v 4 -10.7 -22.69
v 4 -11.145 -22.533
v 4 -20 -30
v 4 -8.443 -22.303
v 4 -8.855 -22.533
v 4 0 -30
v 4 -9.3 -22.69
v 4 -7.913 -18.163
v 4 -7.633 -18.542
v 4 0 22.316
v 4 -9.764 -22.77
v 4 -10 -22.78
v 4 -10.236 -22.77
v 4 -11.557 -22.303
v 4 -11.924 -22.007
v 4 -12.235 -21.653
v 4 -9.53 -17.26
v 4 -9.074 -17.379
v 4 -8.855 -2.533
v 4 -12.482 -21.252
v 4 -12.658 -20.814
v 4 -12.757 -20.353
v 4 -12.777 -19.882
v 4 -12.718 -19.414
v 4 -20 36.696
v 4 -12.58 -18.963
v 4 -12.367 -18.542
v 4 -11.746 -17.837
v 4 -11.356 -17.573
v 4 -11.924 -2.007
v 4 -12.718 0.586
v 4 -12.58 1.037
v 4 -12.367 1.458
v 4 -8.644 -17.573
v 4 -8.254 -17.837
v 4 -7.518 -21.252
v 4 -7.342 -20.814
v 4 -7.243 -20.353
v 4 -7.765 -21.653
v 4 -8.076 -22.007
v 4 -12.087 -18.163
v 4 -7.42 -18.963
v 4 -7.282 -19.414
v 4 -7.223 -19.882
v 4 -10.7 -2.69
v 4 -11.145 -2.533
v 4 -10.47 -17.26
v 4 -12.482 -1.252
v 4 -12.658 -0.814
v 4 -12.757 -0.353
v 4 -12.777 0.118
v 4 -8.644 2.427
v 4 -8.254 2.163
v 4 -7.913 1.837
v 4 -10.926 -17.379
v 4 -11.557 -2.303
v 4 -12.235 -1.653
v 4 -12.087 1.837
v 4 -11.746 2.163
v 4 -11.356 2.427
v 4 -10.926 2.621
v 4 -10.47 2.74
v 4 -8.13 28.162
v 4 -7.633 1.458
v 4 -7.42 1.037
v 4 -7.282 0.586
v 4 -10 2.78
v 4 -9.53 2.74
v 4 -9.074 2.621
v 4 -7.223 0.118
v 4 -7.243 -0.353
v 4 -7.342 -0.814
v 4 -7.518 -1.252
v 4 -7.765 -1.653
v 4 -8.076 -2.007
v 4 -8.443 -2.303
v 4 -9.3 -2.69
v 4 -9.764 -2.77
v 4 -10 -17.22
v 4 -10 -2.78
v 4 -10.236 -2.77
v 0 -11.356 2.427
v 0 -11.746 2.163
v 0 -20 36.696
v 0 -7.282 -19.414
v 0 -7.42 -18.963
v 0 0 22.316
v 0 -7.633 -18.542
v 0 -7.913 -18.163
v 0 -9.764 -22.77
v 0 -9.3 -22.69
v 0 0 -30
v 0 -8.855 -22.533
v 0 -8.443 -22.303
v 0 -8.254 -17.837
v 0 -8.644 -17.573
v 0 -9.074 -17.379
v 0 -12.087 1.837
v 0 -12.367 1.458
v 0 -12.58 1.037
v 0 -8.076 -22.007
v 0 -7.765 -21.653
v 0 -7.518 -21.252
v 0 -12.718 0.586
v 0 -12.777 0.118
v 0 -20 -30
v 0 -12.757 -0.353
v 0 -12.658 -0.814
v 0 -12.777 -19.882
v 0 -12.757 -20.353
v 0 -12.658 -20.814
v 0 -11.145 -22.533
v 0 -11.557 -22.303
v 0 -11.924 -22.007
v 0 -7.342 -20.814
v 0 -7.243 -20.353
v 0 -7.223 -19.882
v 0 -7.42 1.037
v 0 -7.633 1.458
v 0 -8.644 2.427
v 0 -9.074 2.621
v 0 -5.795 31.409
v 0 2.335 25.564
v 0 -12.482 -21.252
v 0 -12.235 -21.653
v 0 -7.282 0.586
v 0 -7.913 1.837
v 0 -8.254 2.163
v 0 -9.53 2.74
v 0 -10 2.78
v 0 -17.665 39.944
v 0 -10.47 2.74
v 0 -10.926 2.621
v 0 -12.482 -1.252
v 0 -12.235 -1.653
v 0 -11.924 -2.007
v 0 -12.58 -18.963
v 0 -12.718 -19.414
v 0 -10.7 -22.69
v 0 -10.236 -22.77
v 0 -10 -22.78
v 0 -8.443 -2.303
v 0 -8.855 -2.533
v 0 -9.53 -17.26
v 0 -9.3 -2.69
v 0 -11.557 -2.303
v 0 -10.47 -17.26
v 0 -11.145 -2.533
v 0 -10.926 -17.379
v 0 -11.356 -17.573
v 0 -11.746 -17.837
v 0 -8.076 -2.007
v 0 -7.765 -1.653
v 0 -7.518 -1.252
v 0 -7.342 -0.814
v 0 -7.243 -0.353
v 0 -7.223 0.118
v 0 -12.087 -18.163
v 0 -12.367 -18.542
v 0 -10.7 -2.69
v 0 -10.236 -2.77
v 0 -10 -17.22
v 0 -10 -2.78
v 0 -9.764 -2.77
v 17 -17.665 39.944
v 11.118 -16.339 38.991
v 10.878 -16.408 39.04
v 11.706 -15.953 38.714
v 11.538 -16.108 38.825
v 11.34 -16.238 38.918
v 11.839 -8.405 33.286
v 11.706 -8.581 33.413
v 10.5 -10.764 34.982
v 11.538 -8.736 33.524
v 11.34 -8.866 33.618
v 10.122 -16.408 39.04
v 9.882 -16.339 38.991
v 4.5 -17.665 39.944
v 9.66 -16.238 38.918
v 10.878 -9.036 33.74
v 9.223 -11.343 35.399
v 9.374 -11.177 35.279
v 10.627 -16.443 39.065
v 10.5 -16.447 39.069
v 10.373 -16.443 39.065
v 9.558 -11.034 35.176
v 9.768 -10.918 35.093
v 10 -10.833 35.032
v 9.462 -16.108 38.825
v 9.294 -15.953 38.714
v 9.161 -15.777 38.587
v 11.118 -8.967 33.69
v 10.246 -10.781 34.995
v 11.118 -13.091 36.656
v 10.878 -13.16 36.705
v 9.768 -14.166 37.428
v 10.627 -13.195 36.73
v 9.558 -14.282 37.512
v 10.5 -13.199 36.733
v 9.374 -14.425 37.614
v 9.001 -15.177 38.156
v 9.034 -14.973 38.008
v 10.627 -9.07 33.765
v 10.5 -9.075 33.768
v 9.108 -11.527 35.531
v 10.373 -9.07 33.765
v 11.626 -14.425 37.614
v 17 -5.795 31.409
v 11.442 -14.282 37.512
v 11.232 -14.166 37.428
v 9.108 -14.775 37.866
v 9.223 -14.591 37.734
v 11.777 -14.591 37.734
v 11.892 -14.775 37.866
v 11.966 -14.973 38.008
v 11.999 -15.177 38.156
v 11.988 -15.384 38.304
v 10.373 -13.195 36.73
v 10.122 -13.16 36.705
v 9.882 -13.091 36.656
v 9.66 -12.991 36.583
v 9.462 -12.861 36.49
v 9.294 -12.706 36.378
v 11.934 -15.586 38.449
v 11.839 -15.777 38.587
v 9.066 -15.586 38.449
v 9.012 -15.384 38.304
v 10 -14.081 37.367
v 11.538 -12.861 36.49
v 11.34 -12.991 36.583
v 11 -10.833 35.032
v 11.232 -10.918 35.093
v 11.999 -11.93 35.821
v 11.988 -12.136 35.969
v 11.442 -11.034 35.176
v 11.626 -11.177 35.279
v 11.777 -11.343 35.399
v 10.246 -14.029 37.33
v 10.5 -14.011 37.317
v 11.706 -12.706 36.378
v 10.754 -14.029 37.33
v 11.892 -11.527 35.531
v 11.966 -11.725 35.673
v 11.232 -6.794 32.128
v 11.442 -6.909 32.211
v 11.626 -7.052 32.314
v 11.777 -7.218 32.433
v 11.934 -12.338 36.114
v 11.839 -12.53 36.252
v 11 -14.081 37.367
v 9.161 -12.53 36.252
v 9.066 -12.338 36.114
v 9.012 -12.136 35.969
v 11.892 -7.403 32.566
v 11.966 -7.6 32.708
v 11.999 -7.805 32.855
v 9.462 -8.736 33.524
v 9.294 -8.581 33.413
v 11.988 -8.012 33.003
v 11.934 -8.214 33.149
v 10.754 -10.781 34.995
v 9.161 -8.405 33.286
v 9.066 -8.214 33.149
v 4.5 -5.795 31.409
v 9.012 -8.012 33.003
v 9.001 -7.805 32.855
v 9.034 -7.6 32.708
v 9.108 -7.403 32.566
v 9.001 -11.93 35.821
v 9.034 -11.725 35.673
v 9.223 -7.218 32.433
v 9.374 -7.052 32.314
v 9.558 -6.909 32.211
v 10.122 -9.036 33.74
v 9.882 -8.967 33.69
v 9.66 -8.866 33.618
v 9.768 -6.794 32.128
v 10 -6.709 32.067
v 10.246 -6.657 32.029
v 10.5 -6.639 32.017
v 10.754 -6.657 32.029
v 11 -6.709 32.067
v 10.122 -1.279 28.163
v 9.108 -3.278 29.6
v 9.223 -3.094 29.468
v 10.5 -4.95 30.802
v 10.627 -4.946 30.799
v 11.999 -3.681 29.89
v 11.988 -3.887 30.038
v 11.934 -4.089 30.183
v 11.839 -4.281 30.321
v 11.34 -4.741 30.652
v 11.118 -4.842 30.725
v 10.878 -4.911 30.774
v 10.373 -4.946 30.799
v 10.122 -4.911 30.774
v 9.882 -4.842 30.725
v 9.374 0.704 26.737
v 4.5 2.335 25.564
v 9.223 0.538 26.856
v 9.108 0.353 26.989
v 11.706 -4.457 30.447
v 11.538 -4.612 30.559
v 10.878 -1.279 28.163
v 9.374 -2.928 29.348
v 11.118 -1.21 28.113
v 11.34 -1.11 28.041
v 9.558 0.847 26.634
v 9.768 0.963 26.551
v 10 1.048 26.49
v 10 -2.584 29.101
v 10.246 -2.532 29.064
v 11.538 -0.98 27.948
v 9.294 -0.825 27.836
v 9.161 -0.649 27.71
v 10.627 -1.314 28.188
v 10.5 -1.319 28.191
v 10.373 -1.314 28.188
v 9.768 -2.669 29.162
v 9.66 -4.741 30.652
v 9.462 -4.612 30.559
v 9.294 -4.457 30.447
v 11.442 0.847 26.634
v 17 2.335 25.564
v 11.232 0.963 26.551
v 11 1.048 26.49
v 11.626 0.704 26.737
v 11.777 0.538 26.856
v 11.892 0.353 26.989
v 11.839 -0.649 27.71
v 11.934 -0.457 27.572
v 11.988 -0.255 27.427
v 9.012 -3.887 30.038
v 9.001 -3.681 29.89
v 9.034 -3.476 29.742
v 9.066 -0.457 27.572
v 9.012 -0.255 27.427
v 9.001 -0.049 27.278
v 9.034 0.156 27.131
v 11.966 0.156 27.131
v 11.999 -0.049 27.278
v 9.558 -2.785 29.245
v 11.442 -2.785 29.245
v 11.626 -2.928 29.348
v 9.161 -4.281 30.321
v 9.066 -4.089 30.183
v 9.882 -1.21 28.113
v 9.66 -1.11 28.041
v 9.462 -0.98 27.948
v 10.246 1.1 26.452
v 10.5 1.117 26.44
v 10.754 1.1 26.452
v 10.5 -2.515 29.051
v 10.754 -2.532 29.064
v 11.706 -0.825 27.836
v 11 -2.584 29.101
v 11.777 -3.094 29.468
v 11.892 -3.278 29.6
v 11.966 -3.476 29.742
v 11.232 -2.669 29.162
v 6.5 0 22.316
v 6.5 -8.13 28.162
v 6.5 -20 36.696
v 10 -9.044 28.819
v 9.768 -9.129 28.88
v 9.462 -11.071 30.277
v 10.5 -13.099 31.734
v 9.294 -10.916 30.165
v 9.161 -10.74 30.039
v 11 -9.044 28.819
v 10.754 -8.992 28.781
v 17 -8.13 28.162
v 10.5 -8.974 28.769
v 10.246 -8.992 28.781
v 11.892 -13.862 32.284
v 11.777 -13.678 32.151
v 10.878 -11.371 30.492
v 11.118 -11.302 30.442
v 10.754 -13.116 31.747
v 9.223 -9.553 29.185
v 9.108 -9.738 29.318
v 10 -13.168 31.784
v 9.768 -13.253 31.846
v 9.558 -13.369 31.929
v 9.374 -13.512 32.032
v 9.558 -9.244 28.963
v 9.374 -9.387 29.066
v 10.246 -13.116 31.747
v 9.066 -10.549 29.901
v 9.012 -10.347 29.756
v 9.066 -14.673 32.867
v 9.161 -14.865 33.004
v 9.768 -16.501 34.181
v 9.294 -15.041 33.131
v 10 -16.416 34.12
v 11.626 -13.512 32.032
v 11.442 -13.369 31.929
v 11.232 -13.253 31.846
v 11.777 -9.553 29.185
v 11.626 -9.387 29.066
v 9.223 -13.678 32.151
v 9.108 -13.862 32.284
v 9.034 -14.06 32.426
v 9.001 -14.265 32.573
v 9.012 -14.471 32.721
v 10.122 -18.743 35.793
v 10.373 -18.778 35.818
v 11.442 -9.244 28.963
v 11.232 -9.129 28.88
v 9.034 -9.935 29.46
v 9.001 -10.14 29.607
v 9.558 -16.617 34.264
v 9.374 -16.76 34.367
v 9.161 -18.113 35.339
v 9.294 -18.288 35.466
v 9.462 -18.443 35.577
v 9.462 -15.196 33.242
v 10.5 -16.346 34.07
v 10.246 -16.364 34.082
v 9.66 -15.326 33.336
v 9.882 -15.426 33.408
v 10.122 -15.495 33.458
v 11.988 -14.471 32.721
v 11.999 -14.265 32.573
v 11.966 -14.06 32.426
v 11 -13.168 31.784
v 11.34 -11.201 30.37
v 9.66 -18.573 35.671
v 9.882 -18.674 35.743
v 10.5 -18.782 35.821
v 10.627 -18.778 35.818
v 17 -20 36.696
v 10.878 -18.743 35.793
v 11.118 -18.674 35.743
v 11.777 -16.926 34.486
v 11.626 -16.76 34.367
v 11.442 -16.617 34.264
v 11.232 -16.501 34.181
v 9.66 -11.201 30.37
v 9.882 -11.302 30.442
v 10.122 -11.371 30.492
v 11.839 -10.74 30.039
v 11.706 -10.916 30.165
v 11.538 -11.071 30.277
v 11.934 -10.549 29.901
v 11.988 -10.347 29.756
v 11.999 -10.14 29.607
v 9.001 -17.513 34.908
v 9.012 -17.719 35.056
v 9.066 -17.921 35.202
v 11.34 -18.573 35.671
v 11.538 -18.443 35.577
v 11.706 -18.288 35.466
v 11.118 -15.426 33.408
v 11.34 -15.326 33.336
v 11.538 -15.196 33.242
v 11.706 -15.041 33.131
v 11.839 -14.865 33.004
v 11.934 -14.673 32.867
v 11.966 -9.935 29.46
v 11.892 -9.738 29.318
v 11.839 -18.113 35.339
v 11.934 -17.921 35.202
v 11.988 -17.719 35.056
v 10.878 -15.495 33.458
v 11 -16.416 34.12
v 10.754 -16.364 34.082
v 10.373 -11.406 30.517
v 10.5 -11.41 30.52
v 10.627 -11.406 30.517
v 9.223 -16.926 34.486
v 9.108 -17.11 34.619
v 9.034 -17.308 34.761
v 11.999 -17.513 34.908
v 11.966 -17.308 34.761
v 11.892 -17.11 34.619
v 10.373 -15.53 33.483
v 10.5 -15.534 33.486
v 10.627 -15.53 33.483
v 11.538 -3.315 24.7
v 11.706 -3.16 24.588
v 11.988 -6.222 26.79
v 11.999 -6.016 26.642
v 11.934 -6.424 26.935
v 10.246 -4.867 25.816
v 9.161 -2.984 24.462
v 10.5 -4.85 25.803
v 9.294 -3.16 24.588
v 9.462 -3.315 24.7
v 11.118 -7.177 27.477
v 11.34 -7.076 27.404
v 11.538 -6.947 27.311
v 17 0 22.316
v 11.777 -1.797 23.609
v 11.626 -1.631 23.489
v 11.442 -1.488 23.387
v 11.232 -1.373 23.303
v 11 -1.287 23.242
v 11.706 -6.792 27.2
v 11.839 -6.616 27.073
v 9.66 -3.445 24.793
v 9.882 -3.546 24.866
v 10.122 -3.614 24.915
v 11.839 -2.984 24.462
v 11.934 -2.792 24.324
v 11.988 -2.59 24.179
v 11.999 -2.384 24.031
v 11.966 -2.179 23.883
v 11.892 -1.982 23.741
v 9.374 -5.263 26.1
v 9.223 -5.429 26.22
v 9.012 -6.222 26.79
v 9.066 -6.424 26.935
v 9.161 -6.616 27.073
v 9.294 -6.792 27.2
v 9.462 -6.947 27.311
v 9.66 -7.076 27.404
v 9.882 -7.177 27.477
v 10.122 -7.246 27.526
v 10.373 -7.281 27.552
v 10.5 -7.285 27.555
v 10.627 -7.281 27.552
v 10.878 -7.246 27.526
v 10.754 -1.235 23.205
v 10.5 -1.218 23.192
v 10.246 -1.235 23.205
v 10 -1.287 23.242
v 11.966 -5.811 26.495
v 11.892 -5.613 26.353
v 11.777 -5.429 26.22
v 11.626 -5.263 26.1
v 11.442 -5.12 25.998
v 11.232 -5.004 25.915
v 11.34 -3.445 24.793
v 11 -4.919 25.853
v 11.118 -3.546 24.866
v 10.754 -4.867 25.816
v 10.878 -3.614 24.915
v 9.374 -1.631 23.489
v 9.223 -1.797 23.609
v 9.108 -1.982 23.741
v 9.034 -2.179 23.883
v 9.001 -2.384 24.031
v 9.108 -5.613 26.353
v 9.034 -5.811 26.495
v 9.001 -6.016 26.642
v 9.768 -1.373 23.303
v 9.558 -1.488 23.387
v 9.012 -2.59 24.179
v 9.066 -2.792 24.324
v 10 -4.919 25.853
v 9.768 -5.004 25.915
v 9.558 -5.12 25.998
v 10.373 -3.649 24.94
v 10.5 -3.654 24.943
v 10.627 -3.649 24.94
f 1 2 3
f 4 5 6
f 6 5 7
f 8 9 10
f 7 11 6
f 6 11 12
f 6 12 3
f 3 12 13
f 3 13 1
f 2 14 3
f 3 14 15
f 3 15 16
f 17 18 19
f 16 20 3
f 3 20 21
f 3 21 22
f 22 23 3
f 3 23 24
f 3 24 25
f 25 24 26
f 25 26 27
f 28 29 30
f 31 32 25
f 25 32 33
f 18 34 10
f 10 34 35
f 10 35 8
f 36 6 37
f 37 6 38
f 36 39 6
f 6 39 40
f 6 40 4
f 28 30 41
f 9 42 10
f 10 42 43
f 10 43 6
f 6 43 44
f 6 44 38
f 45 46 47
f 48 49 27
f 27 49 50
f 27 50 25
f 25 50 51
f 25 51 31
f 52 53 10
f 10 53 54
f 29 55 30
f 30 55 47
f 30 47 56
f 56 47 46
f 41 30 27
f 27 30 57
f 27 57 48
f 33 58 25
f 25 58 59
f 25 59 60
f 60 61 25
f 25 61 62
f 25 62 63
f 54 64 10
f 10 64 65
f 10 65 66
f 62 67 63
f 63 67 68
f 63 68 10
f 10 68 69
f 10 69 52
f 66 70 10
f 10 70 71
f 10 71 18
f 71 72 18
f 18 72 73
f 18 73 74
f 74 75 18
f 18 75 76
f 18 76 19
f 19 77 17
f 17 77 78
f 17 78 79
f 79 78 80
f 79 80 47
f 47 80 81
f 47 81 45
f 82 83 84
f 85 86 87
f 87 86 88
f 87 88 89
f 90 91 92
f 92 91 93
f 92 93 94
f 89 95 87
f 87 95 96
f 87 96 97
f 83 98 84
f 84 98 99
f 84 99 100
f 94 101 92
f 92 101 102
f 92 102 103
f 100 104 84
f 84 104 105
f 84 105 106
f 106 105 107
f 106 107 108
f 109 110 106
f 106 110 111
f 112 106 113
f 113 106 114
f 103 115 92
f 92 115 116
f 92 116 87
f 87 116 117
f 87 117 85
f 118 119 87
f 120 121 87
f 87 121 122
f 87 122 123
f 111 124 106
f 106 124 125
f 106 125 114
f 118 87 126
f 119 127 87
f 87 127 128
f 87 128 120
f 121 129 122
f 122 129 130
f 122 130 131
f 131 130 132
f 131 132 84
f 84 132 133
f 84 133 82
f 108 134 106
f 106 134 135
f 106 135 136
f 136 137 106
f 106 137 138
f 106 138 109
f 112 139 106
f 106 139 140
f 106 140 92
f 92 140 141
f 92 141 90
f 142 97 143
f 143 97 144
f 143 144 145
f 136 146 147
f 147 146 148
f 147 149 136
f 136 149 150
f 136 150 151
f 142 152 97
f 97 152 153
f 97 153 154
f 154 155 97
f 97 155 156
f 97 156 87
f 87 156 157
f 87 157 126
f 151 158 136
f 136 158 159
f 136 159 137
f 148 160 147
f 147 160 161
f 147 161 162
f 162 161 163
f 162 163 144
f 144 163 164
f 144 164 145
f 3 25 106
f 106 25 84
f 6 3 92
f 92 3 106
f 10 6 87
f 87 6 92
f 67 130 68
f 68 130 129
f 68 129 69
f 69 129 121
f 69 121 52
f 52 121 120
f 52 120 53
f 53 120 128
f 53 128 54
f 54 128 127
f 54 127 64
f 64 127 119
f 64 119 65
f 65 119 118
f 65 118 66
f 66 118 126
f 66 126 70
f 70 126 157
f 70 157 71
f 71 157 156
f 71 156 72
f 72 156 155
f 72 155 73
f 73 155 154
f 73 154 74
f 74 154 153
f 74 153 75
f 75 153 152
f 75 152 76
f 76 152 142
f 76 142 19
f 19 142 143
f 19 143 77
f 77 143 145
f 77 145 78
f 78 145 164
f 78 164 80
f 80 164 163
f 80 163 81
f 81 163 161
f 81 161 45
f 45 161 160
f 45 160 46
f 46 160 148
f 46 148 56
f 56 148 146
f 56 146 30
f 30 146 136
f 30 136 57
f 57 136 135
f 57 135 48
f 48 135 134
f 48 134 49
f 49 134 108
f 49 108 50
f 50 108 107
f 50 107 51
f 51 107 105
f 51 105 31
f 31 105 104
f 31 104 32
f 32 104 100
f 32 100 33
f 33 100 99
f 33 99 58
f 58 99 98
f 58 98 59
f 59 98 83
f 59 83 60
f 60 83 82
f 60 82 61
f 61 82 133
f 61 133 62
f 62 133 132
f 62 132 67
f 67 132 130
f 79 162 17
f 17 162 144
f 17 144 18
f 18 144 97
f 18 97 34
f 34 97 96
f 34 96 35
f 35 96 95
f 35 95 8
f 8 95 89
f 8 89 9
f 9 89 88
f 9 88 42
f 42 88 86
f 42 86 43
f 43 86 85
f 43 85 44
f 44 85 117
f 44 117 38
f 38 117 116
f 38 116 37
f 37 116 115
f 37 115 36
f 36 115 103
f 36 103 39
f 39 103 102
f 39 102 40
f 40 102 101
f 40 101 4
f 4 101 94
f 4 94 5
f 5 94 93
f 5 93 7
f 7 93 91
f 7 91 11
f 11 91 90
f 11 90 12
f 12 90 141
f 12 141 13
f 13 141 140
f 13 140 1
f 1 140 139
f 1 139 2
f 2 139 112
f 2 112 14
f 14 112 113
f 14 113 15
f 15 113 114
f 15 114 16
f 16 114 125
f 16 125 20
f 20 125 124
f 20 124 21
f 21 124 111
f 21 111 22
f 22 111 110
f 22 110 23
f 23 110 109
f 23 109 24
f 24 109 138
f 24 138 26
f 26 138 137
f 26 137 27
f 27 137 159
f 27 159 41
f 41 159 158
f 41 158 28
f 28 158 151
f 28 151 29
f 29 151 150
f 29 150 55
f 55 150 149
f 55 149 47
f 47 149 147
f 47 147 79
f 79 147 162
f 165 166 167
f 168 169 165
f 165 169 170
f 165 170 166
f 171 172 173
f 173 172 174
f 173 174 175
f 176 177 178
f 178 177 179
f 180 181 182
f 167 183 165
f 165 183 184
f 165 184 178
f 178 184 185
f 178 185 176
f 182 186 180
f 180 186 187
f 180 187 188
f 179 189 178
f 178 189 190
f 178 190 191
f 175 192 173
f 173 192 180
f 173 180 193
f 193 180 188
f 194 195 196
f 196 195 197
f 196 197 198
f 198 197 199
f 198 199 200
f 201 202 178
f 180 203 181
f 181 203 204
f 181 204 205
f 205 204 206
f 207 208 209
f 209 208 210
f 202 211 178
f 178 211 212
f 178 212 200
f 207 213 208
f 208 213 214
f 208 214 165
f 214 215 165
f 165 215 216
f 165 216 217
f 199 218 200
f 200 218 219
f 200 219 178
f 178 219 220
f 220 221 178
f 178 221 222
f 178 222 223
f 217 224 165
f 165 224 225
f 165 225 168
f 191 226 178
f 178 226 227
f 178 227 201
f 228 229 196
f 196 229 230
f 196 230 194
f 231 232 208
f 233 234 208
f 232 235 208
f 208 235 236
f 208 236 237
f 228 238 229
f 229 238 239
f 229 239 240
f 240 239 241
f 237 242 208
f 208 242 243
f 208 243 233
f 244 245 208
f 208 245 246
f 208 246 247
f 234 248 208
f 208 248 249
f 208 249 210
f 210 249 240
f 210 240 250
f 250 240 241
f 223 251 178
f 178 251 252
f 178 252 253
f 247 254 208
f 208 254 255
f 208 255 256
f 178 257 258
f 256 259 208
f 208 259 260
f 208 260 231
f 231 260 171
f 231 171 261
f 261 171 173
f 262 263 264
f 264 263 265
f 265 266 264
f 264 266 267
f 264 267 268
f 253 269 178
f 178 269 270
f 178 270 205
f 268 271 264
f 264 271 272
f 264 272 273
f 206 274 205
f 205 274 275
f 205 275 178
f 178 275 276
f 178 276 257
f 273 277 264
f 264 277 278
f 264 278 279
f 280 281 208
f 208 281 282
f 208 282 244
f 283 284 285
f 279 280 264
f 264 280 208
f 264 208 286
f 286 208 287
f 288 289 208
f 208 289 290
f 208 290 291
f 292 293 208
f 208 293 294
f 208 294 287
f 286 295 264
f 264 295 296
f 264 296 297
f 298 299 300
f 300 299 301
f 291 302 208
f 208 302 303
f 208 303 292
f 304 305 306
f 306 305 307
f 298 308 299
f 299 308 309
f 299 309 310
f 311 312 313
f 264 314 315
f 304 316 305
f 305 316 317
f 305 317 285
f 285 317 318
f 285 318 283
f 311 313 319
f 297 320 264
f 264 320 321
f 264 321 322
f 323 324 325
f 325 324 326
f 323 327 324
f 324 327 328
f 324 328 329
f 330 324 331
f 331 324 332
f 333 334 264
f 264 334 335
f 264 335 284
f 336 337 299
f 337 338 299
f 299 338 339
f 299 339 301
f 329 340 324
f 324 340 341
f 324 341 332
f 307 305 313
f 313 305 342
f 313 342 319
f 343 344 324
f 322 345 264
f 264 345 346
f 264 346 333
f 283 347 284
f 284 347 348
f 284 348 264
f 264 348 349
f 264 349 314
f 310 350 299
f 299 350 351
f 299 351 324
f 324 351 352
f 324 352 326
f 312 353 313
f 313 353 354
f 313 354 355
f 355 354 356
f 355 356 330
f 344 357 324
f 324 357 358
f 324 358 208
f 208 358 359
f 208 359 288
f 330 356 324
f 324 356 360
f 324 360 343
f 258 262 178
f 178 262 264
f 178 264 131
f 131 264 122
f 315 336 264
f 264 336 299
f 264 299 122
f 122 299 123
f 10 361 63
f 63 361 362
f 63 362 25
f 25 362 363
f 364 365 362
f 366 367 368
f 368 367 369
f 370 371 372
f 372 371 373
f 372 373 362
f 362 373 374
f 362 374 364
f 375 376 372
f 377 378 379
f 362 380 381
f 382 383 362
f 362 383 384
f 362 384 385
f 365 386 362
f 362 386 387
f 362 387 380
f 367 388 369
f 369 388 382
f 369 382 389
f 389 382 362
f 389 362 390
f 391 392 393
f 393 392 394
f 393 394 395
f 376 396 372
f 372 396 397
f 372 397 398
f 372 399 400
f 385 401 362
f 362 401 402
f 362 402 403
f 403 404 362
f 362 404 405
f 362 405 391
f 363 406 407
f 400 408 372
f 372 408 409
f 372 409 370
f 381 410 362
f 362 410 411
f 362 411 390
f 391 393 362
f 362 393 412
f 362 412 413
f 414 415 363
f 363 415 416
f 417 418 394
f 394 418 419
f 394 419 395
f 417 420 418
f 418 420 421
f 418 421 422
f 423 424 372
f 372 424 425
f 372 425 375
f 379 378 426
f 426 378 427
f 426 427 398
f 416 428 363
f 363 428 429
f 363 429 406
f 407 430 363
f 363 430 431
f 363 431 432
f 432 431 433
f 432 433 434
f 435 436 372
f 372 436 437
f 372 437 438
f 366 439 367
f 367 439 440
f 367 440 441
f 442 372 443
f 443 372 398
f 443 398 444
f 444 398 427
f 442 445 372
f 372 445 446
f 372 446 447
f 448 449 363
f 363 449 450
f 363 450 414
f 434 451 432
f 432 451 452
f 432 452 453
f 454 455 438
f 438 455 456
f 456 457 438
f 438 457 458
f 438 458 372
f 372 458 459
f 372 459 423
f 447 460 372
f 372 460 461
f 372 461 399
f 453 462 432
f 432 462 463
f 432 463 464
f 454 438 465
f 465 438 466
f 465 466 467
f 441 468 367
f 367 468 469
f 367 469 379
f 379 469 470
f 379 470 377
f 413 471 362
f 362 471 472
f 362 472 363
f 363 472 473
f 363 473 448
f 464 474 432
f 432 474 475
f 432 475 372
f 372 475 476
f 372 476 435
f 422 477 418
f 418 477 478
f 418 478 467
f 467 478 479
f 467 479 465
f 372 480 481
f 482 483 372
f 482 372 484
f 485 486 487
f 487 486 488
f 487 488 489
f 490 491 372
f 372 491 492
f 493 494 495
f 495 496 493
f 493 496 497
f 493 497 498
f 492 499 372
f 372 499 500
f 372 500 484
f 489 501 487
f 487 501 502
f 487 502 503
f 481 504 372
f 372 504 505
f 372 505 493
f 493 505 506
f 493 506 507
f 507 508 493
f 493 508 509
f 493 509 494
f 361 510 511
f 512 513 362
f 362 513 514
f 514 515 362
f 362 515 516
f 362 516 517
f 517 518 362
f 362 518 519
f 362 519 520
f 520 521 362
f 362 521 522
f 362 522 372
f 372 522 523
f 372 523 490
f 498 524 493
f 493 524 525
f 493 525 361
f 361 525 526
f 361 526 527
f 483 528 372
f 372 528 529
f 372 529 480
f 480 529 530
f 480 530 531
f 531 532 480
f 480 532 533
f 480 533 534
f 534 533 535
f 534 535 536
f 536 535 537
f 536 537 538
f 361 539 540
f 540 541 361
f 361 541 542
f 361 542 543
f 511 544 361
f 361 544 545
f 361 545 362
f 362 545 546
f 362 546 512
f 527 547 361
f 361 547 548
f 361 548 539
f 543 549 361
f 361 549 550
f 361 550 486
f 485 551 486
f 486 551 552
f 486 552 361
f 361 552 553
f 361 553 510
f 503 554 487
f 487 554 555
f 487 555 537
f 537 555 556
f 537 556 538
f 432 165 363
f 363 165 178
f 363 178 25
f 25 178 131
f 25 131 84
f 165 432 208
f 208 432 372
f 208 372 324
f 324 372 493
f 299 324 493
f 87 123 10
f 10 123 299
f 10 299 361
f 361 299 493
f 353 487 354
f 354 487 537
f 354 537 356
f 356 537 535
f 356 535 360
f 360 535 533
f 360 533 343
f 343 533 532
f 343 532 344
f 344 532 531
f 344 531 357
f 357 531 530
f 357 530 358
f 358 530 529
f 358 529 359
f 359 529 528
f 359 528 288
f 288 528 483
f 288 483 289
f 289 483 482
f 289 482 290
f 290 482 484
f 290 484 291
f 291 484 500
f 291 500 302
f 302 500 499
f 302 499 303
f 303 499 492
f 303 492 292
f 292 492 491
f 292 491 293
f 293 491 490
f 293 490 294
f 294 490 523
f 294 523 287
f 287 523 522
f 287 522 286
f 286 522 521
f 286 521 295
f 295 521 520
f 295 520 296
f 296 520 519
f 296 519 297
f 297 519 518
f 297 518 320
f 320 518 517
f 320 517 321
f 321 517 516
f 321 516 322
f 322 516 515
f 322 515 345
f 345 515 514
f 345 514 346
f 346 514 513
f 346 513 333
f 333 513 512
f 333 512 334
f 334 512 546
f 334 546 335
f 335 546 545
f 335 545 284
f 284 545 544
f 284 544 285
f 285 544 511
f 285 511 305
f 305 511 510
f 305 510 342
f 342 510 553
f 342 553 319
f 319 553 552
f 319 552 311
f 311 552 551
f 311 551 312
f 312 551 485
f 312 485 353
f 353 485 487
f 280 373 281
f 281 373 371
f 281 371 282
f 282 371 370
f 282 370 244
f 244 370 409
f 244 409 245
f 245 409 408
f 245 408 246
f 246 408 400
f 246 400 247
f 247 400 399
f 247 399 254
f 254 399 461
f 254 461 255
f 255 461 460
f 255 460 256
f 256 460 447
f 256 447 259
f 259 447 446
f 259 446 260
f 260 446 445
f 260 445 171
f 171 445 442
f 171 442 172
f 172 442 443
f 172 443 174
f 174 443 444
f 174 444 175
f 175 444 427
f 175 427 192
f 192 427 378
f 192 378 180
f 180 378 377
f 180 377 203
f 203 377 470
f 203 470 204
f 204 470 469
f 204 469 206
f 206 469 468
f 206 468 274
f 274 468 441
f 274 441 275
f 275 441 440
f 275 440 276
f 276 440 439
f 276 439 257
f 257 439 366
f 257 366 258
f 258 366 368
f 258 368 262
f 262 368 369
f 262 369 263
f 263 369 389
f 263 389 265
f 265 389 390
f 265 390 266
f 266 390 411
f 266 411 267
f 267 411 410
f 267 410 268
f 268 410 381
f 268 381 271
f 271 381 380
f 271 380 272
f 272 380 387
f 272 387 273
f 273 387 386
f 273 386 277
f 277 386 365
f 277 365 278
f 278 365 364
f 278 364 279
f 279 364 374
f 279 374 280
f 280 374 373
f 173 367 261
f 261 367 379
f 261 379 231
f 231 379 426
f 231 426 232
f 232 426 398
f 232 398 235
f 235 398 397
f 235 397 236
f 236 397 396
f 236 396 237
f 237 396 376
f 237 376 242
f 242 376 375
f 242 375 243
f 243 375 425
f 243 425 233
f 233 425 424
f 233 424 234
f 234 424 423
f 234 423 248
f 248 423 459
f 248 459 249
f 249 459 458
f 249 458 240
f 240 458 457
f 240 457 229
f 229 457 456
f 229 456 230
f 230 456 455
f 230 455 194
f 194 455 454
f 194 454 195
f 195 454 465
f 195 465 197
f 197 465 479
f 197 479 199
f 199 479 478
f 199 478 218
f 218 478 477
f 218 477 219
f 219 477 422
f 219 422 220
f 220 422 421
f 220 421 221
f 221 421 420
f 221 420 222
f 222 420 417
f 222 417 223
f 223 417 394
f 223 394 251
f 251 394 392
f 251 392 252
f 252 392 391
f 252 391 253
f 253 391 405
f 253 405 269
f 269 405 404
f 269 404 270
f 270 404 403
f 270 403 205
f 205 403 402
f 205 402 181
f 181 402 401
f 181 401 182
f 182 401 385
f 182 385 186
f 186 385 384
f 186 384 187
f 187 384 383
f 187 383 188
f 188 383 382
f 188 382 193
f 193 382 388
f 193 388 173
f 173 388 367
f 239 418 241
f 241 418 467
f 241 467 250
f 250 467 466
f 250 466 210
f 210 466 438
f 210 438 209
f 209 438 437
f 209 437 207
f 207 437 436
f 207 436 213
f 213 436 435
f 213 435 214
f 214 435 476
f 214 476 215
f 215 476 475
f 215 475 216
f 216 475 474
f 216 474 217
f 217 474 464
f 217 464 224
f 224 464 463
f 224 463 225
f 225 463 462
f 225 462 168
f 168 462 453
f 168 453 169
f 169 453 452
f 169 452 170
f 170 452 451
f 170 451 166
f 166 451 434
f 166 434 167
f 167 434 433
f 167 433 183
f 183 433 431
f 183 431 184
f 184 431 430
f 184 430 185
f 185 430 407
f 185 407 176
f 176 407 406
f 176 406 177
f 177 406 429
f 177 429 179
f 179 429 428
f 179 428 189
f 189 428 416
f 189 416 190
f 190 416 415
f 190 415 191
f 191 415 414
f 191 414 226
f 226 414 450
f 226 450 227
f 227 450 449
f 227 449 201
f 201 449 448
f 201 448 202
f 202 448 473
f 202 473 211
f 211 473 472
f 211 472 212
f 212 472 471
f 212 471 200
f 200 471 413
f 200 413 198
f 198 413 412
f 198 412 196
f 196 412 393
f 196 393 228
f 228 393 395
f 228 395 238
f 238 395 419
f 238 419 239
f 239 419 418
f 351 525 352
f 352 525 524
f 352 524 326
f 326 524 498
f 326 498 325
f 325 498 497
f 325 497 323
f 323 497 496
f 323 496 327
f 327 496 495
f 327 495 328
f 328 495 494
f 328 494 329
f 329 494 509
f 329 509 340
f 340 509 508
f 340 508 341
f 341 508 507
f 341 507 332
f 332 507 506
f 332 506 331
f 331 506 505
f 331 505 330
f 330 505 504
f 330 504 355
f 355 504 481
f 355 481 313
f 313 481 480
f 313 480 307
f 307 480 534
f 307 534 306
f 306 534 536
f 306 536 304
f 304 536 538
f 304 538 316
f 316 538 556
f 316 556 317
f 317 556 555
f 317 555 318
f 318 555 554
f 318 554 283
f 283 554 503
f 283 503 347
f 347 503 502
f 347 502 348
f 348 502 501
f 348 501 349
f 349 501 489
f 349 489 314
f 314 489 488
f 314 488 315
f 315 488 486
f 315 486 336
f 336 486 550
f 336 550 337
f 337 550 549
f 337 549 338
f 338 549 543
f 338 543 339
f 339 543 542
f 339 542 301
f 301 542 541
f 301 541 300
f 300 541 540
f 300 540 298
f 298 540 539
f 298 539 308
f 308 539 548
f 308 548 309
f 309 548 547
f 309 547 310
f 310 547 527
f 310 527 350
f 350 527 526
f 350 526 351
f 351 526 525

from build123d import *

# Parameters (mm, degrees)
SKETCH1_W           = 40
SKETCH1_H           = 20
SKETCH1_R           = 2.78
BOSS_EXTRUDE1_DEPTH = 4
SKETCH6_W           = 17
SKETCH6_H           = 24.632994134
SKETCH6_R           = 1.5
BOSS_EXTRUDE2_DEPTH = 4


with BuildPart() as part:
    # Sketch1 → Boss-Extrude1 (new body)
    with BuildSketch(Plane(origin=(0, 0, 0), x_dir=(0, 0, -1), z_dir=(1, 0, 0))):
        with Locations((10, -10)):
            Rectangle(SKETCH1_W, SKETCH1_H)
        with Locations((0, -10)):
            Circle(SKETCH1_R, mode=Mode.SUBTRACT)
        with Locations((20, -10)):
            Circle(SKETCH1_R, mode=Mode.SUBTRACT)
    extrude(amount=BOSS_EXTRUDE1_DEPTH)

    # Sketch5 → section 0 of loft1
    with BuildSketch(Plane(origin=(0, 10.577438307, 14.711318924), x_dir=(1, 0, 0), z_dir=(0, 0.5837698787992286, 0.8119191638375918)), mode=Mode.PRIVATE) as loft1_s0:
        with BuildLine():
            Line((0, -13.027698788), (4, -13.027698788))
            Line((4, -13.027698788), (4, -37.660692922))
            Line((4, -37.660692922), (0, -37.660692922))
            Line((0, -37.660692922), (0, -13.027698788))
        make_face()
    # loft up to a face of the part (loft1)
    loft([loft1_s0.sketch, part.faces().sort_by_distance((2, -10, 10))[0]])

    # Sketch6 → Boss-Extrude2 (add)
    with BuildSketch(Plane(origin=(0, 10.577438307, 14.711318924), x_dir=(1, 0, 0), z_dir=(0, 0.5837698787992287, 0.8119191638375917))):
        with Locations((8.5, -25.344195855)):
            Rectangle(SKETCH6_W, SKETCH6_H)
        with Locations(Location((10.5, -20.500692922, 0), (0, 0, 270))):
            Circle(SKETCH6_R, mode=Mode.SUBTRACT)
        with Locations(Location((10.5, -25.580692922, 0), (0, 0, 270))):
            Circle(SKETCH6_R, mode=Mode.SUBTRACT)
        with Locations(Location((10.5, -30.660692922, 0), (0, 0, 270))):
            Circle(SKETCH6_R, mode=Mode.SUBTRACT)
        with Locations(Location((10.5, -34.660692922, 0), (0, 0, 270))):
            Circle(SKETCH6_R, mode=Mode.SUBTRACT)
        with Locations(Location((10.5, -16.027698788, 0), (0, 0, 270))):
            Circle(SKETCH6_R, mode=Mode.SUBTRACT)
    extrude(amount=BOSS_EXTRUDE2_DEPTH)


solid = part.part
